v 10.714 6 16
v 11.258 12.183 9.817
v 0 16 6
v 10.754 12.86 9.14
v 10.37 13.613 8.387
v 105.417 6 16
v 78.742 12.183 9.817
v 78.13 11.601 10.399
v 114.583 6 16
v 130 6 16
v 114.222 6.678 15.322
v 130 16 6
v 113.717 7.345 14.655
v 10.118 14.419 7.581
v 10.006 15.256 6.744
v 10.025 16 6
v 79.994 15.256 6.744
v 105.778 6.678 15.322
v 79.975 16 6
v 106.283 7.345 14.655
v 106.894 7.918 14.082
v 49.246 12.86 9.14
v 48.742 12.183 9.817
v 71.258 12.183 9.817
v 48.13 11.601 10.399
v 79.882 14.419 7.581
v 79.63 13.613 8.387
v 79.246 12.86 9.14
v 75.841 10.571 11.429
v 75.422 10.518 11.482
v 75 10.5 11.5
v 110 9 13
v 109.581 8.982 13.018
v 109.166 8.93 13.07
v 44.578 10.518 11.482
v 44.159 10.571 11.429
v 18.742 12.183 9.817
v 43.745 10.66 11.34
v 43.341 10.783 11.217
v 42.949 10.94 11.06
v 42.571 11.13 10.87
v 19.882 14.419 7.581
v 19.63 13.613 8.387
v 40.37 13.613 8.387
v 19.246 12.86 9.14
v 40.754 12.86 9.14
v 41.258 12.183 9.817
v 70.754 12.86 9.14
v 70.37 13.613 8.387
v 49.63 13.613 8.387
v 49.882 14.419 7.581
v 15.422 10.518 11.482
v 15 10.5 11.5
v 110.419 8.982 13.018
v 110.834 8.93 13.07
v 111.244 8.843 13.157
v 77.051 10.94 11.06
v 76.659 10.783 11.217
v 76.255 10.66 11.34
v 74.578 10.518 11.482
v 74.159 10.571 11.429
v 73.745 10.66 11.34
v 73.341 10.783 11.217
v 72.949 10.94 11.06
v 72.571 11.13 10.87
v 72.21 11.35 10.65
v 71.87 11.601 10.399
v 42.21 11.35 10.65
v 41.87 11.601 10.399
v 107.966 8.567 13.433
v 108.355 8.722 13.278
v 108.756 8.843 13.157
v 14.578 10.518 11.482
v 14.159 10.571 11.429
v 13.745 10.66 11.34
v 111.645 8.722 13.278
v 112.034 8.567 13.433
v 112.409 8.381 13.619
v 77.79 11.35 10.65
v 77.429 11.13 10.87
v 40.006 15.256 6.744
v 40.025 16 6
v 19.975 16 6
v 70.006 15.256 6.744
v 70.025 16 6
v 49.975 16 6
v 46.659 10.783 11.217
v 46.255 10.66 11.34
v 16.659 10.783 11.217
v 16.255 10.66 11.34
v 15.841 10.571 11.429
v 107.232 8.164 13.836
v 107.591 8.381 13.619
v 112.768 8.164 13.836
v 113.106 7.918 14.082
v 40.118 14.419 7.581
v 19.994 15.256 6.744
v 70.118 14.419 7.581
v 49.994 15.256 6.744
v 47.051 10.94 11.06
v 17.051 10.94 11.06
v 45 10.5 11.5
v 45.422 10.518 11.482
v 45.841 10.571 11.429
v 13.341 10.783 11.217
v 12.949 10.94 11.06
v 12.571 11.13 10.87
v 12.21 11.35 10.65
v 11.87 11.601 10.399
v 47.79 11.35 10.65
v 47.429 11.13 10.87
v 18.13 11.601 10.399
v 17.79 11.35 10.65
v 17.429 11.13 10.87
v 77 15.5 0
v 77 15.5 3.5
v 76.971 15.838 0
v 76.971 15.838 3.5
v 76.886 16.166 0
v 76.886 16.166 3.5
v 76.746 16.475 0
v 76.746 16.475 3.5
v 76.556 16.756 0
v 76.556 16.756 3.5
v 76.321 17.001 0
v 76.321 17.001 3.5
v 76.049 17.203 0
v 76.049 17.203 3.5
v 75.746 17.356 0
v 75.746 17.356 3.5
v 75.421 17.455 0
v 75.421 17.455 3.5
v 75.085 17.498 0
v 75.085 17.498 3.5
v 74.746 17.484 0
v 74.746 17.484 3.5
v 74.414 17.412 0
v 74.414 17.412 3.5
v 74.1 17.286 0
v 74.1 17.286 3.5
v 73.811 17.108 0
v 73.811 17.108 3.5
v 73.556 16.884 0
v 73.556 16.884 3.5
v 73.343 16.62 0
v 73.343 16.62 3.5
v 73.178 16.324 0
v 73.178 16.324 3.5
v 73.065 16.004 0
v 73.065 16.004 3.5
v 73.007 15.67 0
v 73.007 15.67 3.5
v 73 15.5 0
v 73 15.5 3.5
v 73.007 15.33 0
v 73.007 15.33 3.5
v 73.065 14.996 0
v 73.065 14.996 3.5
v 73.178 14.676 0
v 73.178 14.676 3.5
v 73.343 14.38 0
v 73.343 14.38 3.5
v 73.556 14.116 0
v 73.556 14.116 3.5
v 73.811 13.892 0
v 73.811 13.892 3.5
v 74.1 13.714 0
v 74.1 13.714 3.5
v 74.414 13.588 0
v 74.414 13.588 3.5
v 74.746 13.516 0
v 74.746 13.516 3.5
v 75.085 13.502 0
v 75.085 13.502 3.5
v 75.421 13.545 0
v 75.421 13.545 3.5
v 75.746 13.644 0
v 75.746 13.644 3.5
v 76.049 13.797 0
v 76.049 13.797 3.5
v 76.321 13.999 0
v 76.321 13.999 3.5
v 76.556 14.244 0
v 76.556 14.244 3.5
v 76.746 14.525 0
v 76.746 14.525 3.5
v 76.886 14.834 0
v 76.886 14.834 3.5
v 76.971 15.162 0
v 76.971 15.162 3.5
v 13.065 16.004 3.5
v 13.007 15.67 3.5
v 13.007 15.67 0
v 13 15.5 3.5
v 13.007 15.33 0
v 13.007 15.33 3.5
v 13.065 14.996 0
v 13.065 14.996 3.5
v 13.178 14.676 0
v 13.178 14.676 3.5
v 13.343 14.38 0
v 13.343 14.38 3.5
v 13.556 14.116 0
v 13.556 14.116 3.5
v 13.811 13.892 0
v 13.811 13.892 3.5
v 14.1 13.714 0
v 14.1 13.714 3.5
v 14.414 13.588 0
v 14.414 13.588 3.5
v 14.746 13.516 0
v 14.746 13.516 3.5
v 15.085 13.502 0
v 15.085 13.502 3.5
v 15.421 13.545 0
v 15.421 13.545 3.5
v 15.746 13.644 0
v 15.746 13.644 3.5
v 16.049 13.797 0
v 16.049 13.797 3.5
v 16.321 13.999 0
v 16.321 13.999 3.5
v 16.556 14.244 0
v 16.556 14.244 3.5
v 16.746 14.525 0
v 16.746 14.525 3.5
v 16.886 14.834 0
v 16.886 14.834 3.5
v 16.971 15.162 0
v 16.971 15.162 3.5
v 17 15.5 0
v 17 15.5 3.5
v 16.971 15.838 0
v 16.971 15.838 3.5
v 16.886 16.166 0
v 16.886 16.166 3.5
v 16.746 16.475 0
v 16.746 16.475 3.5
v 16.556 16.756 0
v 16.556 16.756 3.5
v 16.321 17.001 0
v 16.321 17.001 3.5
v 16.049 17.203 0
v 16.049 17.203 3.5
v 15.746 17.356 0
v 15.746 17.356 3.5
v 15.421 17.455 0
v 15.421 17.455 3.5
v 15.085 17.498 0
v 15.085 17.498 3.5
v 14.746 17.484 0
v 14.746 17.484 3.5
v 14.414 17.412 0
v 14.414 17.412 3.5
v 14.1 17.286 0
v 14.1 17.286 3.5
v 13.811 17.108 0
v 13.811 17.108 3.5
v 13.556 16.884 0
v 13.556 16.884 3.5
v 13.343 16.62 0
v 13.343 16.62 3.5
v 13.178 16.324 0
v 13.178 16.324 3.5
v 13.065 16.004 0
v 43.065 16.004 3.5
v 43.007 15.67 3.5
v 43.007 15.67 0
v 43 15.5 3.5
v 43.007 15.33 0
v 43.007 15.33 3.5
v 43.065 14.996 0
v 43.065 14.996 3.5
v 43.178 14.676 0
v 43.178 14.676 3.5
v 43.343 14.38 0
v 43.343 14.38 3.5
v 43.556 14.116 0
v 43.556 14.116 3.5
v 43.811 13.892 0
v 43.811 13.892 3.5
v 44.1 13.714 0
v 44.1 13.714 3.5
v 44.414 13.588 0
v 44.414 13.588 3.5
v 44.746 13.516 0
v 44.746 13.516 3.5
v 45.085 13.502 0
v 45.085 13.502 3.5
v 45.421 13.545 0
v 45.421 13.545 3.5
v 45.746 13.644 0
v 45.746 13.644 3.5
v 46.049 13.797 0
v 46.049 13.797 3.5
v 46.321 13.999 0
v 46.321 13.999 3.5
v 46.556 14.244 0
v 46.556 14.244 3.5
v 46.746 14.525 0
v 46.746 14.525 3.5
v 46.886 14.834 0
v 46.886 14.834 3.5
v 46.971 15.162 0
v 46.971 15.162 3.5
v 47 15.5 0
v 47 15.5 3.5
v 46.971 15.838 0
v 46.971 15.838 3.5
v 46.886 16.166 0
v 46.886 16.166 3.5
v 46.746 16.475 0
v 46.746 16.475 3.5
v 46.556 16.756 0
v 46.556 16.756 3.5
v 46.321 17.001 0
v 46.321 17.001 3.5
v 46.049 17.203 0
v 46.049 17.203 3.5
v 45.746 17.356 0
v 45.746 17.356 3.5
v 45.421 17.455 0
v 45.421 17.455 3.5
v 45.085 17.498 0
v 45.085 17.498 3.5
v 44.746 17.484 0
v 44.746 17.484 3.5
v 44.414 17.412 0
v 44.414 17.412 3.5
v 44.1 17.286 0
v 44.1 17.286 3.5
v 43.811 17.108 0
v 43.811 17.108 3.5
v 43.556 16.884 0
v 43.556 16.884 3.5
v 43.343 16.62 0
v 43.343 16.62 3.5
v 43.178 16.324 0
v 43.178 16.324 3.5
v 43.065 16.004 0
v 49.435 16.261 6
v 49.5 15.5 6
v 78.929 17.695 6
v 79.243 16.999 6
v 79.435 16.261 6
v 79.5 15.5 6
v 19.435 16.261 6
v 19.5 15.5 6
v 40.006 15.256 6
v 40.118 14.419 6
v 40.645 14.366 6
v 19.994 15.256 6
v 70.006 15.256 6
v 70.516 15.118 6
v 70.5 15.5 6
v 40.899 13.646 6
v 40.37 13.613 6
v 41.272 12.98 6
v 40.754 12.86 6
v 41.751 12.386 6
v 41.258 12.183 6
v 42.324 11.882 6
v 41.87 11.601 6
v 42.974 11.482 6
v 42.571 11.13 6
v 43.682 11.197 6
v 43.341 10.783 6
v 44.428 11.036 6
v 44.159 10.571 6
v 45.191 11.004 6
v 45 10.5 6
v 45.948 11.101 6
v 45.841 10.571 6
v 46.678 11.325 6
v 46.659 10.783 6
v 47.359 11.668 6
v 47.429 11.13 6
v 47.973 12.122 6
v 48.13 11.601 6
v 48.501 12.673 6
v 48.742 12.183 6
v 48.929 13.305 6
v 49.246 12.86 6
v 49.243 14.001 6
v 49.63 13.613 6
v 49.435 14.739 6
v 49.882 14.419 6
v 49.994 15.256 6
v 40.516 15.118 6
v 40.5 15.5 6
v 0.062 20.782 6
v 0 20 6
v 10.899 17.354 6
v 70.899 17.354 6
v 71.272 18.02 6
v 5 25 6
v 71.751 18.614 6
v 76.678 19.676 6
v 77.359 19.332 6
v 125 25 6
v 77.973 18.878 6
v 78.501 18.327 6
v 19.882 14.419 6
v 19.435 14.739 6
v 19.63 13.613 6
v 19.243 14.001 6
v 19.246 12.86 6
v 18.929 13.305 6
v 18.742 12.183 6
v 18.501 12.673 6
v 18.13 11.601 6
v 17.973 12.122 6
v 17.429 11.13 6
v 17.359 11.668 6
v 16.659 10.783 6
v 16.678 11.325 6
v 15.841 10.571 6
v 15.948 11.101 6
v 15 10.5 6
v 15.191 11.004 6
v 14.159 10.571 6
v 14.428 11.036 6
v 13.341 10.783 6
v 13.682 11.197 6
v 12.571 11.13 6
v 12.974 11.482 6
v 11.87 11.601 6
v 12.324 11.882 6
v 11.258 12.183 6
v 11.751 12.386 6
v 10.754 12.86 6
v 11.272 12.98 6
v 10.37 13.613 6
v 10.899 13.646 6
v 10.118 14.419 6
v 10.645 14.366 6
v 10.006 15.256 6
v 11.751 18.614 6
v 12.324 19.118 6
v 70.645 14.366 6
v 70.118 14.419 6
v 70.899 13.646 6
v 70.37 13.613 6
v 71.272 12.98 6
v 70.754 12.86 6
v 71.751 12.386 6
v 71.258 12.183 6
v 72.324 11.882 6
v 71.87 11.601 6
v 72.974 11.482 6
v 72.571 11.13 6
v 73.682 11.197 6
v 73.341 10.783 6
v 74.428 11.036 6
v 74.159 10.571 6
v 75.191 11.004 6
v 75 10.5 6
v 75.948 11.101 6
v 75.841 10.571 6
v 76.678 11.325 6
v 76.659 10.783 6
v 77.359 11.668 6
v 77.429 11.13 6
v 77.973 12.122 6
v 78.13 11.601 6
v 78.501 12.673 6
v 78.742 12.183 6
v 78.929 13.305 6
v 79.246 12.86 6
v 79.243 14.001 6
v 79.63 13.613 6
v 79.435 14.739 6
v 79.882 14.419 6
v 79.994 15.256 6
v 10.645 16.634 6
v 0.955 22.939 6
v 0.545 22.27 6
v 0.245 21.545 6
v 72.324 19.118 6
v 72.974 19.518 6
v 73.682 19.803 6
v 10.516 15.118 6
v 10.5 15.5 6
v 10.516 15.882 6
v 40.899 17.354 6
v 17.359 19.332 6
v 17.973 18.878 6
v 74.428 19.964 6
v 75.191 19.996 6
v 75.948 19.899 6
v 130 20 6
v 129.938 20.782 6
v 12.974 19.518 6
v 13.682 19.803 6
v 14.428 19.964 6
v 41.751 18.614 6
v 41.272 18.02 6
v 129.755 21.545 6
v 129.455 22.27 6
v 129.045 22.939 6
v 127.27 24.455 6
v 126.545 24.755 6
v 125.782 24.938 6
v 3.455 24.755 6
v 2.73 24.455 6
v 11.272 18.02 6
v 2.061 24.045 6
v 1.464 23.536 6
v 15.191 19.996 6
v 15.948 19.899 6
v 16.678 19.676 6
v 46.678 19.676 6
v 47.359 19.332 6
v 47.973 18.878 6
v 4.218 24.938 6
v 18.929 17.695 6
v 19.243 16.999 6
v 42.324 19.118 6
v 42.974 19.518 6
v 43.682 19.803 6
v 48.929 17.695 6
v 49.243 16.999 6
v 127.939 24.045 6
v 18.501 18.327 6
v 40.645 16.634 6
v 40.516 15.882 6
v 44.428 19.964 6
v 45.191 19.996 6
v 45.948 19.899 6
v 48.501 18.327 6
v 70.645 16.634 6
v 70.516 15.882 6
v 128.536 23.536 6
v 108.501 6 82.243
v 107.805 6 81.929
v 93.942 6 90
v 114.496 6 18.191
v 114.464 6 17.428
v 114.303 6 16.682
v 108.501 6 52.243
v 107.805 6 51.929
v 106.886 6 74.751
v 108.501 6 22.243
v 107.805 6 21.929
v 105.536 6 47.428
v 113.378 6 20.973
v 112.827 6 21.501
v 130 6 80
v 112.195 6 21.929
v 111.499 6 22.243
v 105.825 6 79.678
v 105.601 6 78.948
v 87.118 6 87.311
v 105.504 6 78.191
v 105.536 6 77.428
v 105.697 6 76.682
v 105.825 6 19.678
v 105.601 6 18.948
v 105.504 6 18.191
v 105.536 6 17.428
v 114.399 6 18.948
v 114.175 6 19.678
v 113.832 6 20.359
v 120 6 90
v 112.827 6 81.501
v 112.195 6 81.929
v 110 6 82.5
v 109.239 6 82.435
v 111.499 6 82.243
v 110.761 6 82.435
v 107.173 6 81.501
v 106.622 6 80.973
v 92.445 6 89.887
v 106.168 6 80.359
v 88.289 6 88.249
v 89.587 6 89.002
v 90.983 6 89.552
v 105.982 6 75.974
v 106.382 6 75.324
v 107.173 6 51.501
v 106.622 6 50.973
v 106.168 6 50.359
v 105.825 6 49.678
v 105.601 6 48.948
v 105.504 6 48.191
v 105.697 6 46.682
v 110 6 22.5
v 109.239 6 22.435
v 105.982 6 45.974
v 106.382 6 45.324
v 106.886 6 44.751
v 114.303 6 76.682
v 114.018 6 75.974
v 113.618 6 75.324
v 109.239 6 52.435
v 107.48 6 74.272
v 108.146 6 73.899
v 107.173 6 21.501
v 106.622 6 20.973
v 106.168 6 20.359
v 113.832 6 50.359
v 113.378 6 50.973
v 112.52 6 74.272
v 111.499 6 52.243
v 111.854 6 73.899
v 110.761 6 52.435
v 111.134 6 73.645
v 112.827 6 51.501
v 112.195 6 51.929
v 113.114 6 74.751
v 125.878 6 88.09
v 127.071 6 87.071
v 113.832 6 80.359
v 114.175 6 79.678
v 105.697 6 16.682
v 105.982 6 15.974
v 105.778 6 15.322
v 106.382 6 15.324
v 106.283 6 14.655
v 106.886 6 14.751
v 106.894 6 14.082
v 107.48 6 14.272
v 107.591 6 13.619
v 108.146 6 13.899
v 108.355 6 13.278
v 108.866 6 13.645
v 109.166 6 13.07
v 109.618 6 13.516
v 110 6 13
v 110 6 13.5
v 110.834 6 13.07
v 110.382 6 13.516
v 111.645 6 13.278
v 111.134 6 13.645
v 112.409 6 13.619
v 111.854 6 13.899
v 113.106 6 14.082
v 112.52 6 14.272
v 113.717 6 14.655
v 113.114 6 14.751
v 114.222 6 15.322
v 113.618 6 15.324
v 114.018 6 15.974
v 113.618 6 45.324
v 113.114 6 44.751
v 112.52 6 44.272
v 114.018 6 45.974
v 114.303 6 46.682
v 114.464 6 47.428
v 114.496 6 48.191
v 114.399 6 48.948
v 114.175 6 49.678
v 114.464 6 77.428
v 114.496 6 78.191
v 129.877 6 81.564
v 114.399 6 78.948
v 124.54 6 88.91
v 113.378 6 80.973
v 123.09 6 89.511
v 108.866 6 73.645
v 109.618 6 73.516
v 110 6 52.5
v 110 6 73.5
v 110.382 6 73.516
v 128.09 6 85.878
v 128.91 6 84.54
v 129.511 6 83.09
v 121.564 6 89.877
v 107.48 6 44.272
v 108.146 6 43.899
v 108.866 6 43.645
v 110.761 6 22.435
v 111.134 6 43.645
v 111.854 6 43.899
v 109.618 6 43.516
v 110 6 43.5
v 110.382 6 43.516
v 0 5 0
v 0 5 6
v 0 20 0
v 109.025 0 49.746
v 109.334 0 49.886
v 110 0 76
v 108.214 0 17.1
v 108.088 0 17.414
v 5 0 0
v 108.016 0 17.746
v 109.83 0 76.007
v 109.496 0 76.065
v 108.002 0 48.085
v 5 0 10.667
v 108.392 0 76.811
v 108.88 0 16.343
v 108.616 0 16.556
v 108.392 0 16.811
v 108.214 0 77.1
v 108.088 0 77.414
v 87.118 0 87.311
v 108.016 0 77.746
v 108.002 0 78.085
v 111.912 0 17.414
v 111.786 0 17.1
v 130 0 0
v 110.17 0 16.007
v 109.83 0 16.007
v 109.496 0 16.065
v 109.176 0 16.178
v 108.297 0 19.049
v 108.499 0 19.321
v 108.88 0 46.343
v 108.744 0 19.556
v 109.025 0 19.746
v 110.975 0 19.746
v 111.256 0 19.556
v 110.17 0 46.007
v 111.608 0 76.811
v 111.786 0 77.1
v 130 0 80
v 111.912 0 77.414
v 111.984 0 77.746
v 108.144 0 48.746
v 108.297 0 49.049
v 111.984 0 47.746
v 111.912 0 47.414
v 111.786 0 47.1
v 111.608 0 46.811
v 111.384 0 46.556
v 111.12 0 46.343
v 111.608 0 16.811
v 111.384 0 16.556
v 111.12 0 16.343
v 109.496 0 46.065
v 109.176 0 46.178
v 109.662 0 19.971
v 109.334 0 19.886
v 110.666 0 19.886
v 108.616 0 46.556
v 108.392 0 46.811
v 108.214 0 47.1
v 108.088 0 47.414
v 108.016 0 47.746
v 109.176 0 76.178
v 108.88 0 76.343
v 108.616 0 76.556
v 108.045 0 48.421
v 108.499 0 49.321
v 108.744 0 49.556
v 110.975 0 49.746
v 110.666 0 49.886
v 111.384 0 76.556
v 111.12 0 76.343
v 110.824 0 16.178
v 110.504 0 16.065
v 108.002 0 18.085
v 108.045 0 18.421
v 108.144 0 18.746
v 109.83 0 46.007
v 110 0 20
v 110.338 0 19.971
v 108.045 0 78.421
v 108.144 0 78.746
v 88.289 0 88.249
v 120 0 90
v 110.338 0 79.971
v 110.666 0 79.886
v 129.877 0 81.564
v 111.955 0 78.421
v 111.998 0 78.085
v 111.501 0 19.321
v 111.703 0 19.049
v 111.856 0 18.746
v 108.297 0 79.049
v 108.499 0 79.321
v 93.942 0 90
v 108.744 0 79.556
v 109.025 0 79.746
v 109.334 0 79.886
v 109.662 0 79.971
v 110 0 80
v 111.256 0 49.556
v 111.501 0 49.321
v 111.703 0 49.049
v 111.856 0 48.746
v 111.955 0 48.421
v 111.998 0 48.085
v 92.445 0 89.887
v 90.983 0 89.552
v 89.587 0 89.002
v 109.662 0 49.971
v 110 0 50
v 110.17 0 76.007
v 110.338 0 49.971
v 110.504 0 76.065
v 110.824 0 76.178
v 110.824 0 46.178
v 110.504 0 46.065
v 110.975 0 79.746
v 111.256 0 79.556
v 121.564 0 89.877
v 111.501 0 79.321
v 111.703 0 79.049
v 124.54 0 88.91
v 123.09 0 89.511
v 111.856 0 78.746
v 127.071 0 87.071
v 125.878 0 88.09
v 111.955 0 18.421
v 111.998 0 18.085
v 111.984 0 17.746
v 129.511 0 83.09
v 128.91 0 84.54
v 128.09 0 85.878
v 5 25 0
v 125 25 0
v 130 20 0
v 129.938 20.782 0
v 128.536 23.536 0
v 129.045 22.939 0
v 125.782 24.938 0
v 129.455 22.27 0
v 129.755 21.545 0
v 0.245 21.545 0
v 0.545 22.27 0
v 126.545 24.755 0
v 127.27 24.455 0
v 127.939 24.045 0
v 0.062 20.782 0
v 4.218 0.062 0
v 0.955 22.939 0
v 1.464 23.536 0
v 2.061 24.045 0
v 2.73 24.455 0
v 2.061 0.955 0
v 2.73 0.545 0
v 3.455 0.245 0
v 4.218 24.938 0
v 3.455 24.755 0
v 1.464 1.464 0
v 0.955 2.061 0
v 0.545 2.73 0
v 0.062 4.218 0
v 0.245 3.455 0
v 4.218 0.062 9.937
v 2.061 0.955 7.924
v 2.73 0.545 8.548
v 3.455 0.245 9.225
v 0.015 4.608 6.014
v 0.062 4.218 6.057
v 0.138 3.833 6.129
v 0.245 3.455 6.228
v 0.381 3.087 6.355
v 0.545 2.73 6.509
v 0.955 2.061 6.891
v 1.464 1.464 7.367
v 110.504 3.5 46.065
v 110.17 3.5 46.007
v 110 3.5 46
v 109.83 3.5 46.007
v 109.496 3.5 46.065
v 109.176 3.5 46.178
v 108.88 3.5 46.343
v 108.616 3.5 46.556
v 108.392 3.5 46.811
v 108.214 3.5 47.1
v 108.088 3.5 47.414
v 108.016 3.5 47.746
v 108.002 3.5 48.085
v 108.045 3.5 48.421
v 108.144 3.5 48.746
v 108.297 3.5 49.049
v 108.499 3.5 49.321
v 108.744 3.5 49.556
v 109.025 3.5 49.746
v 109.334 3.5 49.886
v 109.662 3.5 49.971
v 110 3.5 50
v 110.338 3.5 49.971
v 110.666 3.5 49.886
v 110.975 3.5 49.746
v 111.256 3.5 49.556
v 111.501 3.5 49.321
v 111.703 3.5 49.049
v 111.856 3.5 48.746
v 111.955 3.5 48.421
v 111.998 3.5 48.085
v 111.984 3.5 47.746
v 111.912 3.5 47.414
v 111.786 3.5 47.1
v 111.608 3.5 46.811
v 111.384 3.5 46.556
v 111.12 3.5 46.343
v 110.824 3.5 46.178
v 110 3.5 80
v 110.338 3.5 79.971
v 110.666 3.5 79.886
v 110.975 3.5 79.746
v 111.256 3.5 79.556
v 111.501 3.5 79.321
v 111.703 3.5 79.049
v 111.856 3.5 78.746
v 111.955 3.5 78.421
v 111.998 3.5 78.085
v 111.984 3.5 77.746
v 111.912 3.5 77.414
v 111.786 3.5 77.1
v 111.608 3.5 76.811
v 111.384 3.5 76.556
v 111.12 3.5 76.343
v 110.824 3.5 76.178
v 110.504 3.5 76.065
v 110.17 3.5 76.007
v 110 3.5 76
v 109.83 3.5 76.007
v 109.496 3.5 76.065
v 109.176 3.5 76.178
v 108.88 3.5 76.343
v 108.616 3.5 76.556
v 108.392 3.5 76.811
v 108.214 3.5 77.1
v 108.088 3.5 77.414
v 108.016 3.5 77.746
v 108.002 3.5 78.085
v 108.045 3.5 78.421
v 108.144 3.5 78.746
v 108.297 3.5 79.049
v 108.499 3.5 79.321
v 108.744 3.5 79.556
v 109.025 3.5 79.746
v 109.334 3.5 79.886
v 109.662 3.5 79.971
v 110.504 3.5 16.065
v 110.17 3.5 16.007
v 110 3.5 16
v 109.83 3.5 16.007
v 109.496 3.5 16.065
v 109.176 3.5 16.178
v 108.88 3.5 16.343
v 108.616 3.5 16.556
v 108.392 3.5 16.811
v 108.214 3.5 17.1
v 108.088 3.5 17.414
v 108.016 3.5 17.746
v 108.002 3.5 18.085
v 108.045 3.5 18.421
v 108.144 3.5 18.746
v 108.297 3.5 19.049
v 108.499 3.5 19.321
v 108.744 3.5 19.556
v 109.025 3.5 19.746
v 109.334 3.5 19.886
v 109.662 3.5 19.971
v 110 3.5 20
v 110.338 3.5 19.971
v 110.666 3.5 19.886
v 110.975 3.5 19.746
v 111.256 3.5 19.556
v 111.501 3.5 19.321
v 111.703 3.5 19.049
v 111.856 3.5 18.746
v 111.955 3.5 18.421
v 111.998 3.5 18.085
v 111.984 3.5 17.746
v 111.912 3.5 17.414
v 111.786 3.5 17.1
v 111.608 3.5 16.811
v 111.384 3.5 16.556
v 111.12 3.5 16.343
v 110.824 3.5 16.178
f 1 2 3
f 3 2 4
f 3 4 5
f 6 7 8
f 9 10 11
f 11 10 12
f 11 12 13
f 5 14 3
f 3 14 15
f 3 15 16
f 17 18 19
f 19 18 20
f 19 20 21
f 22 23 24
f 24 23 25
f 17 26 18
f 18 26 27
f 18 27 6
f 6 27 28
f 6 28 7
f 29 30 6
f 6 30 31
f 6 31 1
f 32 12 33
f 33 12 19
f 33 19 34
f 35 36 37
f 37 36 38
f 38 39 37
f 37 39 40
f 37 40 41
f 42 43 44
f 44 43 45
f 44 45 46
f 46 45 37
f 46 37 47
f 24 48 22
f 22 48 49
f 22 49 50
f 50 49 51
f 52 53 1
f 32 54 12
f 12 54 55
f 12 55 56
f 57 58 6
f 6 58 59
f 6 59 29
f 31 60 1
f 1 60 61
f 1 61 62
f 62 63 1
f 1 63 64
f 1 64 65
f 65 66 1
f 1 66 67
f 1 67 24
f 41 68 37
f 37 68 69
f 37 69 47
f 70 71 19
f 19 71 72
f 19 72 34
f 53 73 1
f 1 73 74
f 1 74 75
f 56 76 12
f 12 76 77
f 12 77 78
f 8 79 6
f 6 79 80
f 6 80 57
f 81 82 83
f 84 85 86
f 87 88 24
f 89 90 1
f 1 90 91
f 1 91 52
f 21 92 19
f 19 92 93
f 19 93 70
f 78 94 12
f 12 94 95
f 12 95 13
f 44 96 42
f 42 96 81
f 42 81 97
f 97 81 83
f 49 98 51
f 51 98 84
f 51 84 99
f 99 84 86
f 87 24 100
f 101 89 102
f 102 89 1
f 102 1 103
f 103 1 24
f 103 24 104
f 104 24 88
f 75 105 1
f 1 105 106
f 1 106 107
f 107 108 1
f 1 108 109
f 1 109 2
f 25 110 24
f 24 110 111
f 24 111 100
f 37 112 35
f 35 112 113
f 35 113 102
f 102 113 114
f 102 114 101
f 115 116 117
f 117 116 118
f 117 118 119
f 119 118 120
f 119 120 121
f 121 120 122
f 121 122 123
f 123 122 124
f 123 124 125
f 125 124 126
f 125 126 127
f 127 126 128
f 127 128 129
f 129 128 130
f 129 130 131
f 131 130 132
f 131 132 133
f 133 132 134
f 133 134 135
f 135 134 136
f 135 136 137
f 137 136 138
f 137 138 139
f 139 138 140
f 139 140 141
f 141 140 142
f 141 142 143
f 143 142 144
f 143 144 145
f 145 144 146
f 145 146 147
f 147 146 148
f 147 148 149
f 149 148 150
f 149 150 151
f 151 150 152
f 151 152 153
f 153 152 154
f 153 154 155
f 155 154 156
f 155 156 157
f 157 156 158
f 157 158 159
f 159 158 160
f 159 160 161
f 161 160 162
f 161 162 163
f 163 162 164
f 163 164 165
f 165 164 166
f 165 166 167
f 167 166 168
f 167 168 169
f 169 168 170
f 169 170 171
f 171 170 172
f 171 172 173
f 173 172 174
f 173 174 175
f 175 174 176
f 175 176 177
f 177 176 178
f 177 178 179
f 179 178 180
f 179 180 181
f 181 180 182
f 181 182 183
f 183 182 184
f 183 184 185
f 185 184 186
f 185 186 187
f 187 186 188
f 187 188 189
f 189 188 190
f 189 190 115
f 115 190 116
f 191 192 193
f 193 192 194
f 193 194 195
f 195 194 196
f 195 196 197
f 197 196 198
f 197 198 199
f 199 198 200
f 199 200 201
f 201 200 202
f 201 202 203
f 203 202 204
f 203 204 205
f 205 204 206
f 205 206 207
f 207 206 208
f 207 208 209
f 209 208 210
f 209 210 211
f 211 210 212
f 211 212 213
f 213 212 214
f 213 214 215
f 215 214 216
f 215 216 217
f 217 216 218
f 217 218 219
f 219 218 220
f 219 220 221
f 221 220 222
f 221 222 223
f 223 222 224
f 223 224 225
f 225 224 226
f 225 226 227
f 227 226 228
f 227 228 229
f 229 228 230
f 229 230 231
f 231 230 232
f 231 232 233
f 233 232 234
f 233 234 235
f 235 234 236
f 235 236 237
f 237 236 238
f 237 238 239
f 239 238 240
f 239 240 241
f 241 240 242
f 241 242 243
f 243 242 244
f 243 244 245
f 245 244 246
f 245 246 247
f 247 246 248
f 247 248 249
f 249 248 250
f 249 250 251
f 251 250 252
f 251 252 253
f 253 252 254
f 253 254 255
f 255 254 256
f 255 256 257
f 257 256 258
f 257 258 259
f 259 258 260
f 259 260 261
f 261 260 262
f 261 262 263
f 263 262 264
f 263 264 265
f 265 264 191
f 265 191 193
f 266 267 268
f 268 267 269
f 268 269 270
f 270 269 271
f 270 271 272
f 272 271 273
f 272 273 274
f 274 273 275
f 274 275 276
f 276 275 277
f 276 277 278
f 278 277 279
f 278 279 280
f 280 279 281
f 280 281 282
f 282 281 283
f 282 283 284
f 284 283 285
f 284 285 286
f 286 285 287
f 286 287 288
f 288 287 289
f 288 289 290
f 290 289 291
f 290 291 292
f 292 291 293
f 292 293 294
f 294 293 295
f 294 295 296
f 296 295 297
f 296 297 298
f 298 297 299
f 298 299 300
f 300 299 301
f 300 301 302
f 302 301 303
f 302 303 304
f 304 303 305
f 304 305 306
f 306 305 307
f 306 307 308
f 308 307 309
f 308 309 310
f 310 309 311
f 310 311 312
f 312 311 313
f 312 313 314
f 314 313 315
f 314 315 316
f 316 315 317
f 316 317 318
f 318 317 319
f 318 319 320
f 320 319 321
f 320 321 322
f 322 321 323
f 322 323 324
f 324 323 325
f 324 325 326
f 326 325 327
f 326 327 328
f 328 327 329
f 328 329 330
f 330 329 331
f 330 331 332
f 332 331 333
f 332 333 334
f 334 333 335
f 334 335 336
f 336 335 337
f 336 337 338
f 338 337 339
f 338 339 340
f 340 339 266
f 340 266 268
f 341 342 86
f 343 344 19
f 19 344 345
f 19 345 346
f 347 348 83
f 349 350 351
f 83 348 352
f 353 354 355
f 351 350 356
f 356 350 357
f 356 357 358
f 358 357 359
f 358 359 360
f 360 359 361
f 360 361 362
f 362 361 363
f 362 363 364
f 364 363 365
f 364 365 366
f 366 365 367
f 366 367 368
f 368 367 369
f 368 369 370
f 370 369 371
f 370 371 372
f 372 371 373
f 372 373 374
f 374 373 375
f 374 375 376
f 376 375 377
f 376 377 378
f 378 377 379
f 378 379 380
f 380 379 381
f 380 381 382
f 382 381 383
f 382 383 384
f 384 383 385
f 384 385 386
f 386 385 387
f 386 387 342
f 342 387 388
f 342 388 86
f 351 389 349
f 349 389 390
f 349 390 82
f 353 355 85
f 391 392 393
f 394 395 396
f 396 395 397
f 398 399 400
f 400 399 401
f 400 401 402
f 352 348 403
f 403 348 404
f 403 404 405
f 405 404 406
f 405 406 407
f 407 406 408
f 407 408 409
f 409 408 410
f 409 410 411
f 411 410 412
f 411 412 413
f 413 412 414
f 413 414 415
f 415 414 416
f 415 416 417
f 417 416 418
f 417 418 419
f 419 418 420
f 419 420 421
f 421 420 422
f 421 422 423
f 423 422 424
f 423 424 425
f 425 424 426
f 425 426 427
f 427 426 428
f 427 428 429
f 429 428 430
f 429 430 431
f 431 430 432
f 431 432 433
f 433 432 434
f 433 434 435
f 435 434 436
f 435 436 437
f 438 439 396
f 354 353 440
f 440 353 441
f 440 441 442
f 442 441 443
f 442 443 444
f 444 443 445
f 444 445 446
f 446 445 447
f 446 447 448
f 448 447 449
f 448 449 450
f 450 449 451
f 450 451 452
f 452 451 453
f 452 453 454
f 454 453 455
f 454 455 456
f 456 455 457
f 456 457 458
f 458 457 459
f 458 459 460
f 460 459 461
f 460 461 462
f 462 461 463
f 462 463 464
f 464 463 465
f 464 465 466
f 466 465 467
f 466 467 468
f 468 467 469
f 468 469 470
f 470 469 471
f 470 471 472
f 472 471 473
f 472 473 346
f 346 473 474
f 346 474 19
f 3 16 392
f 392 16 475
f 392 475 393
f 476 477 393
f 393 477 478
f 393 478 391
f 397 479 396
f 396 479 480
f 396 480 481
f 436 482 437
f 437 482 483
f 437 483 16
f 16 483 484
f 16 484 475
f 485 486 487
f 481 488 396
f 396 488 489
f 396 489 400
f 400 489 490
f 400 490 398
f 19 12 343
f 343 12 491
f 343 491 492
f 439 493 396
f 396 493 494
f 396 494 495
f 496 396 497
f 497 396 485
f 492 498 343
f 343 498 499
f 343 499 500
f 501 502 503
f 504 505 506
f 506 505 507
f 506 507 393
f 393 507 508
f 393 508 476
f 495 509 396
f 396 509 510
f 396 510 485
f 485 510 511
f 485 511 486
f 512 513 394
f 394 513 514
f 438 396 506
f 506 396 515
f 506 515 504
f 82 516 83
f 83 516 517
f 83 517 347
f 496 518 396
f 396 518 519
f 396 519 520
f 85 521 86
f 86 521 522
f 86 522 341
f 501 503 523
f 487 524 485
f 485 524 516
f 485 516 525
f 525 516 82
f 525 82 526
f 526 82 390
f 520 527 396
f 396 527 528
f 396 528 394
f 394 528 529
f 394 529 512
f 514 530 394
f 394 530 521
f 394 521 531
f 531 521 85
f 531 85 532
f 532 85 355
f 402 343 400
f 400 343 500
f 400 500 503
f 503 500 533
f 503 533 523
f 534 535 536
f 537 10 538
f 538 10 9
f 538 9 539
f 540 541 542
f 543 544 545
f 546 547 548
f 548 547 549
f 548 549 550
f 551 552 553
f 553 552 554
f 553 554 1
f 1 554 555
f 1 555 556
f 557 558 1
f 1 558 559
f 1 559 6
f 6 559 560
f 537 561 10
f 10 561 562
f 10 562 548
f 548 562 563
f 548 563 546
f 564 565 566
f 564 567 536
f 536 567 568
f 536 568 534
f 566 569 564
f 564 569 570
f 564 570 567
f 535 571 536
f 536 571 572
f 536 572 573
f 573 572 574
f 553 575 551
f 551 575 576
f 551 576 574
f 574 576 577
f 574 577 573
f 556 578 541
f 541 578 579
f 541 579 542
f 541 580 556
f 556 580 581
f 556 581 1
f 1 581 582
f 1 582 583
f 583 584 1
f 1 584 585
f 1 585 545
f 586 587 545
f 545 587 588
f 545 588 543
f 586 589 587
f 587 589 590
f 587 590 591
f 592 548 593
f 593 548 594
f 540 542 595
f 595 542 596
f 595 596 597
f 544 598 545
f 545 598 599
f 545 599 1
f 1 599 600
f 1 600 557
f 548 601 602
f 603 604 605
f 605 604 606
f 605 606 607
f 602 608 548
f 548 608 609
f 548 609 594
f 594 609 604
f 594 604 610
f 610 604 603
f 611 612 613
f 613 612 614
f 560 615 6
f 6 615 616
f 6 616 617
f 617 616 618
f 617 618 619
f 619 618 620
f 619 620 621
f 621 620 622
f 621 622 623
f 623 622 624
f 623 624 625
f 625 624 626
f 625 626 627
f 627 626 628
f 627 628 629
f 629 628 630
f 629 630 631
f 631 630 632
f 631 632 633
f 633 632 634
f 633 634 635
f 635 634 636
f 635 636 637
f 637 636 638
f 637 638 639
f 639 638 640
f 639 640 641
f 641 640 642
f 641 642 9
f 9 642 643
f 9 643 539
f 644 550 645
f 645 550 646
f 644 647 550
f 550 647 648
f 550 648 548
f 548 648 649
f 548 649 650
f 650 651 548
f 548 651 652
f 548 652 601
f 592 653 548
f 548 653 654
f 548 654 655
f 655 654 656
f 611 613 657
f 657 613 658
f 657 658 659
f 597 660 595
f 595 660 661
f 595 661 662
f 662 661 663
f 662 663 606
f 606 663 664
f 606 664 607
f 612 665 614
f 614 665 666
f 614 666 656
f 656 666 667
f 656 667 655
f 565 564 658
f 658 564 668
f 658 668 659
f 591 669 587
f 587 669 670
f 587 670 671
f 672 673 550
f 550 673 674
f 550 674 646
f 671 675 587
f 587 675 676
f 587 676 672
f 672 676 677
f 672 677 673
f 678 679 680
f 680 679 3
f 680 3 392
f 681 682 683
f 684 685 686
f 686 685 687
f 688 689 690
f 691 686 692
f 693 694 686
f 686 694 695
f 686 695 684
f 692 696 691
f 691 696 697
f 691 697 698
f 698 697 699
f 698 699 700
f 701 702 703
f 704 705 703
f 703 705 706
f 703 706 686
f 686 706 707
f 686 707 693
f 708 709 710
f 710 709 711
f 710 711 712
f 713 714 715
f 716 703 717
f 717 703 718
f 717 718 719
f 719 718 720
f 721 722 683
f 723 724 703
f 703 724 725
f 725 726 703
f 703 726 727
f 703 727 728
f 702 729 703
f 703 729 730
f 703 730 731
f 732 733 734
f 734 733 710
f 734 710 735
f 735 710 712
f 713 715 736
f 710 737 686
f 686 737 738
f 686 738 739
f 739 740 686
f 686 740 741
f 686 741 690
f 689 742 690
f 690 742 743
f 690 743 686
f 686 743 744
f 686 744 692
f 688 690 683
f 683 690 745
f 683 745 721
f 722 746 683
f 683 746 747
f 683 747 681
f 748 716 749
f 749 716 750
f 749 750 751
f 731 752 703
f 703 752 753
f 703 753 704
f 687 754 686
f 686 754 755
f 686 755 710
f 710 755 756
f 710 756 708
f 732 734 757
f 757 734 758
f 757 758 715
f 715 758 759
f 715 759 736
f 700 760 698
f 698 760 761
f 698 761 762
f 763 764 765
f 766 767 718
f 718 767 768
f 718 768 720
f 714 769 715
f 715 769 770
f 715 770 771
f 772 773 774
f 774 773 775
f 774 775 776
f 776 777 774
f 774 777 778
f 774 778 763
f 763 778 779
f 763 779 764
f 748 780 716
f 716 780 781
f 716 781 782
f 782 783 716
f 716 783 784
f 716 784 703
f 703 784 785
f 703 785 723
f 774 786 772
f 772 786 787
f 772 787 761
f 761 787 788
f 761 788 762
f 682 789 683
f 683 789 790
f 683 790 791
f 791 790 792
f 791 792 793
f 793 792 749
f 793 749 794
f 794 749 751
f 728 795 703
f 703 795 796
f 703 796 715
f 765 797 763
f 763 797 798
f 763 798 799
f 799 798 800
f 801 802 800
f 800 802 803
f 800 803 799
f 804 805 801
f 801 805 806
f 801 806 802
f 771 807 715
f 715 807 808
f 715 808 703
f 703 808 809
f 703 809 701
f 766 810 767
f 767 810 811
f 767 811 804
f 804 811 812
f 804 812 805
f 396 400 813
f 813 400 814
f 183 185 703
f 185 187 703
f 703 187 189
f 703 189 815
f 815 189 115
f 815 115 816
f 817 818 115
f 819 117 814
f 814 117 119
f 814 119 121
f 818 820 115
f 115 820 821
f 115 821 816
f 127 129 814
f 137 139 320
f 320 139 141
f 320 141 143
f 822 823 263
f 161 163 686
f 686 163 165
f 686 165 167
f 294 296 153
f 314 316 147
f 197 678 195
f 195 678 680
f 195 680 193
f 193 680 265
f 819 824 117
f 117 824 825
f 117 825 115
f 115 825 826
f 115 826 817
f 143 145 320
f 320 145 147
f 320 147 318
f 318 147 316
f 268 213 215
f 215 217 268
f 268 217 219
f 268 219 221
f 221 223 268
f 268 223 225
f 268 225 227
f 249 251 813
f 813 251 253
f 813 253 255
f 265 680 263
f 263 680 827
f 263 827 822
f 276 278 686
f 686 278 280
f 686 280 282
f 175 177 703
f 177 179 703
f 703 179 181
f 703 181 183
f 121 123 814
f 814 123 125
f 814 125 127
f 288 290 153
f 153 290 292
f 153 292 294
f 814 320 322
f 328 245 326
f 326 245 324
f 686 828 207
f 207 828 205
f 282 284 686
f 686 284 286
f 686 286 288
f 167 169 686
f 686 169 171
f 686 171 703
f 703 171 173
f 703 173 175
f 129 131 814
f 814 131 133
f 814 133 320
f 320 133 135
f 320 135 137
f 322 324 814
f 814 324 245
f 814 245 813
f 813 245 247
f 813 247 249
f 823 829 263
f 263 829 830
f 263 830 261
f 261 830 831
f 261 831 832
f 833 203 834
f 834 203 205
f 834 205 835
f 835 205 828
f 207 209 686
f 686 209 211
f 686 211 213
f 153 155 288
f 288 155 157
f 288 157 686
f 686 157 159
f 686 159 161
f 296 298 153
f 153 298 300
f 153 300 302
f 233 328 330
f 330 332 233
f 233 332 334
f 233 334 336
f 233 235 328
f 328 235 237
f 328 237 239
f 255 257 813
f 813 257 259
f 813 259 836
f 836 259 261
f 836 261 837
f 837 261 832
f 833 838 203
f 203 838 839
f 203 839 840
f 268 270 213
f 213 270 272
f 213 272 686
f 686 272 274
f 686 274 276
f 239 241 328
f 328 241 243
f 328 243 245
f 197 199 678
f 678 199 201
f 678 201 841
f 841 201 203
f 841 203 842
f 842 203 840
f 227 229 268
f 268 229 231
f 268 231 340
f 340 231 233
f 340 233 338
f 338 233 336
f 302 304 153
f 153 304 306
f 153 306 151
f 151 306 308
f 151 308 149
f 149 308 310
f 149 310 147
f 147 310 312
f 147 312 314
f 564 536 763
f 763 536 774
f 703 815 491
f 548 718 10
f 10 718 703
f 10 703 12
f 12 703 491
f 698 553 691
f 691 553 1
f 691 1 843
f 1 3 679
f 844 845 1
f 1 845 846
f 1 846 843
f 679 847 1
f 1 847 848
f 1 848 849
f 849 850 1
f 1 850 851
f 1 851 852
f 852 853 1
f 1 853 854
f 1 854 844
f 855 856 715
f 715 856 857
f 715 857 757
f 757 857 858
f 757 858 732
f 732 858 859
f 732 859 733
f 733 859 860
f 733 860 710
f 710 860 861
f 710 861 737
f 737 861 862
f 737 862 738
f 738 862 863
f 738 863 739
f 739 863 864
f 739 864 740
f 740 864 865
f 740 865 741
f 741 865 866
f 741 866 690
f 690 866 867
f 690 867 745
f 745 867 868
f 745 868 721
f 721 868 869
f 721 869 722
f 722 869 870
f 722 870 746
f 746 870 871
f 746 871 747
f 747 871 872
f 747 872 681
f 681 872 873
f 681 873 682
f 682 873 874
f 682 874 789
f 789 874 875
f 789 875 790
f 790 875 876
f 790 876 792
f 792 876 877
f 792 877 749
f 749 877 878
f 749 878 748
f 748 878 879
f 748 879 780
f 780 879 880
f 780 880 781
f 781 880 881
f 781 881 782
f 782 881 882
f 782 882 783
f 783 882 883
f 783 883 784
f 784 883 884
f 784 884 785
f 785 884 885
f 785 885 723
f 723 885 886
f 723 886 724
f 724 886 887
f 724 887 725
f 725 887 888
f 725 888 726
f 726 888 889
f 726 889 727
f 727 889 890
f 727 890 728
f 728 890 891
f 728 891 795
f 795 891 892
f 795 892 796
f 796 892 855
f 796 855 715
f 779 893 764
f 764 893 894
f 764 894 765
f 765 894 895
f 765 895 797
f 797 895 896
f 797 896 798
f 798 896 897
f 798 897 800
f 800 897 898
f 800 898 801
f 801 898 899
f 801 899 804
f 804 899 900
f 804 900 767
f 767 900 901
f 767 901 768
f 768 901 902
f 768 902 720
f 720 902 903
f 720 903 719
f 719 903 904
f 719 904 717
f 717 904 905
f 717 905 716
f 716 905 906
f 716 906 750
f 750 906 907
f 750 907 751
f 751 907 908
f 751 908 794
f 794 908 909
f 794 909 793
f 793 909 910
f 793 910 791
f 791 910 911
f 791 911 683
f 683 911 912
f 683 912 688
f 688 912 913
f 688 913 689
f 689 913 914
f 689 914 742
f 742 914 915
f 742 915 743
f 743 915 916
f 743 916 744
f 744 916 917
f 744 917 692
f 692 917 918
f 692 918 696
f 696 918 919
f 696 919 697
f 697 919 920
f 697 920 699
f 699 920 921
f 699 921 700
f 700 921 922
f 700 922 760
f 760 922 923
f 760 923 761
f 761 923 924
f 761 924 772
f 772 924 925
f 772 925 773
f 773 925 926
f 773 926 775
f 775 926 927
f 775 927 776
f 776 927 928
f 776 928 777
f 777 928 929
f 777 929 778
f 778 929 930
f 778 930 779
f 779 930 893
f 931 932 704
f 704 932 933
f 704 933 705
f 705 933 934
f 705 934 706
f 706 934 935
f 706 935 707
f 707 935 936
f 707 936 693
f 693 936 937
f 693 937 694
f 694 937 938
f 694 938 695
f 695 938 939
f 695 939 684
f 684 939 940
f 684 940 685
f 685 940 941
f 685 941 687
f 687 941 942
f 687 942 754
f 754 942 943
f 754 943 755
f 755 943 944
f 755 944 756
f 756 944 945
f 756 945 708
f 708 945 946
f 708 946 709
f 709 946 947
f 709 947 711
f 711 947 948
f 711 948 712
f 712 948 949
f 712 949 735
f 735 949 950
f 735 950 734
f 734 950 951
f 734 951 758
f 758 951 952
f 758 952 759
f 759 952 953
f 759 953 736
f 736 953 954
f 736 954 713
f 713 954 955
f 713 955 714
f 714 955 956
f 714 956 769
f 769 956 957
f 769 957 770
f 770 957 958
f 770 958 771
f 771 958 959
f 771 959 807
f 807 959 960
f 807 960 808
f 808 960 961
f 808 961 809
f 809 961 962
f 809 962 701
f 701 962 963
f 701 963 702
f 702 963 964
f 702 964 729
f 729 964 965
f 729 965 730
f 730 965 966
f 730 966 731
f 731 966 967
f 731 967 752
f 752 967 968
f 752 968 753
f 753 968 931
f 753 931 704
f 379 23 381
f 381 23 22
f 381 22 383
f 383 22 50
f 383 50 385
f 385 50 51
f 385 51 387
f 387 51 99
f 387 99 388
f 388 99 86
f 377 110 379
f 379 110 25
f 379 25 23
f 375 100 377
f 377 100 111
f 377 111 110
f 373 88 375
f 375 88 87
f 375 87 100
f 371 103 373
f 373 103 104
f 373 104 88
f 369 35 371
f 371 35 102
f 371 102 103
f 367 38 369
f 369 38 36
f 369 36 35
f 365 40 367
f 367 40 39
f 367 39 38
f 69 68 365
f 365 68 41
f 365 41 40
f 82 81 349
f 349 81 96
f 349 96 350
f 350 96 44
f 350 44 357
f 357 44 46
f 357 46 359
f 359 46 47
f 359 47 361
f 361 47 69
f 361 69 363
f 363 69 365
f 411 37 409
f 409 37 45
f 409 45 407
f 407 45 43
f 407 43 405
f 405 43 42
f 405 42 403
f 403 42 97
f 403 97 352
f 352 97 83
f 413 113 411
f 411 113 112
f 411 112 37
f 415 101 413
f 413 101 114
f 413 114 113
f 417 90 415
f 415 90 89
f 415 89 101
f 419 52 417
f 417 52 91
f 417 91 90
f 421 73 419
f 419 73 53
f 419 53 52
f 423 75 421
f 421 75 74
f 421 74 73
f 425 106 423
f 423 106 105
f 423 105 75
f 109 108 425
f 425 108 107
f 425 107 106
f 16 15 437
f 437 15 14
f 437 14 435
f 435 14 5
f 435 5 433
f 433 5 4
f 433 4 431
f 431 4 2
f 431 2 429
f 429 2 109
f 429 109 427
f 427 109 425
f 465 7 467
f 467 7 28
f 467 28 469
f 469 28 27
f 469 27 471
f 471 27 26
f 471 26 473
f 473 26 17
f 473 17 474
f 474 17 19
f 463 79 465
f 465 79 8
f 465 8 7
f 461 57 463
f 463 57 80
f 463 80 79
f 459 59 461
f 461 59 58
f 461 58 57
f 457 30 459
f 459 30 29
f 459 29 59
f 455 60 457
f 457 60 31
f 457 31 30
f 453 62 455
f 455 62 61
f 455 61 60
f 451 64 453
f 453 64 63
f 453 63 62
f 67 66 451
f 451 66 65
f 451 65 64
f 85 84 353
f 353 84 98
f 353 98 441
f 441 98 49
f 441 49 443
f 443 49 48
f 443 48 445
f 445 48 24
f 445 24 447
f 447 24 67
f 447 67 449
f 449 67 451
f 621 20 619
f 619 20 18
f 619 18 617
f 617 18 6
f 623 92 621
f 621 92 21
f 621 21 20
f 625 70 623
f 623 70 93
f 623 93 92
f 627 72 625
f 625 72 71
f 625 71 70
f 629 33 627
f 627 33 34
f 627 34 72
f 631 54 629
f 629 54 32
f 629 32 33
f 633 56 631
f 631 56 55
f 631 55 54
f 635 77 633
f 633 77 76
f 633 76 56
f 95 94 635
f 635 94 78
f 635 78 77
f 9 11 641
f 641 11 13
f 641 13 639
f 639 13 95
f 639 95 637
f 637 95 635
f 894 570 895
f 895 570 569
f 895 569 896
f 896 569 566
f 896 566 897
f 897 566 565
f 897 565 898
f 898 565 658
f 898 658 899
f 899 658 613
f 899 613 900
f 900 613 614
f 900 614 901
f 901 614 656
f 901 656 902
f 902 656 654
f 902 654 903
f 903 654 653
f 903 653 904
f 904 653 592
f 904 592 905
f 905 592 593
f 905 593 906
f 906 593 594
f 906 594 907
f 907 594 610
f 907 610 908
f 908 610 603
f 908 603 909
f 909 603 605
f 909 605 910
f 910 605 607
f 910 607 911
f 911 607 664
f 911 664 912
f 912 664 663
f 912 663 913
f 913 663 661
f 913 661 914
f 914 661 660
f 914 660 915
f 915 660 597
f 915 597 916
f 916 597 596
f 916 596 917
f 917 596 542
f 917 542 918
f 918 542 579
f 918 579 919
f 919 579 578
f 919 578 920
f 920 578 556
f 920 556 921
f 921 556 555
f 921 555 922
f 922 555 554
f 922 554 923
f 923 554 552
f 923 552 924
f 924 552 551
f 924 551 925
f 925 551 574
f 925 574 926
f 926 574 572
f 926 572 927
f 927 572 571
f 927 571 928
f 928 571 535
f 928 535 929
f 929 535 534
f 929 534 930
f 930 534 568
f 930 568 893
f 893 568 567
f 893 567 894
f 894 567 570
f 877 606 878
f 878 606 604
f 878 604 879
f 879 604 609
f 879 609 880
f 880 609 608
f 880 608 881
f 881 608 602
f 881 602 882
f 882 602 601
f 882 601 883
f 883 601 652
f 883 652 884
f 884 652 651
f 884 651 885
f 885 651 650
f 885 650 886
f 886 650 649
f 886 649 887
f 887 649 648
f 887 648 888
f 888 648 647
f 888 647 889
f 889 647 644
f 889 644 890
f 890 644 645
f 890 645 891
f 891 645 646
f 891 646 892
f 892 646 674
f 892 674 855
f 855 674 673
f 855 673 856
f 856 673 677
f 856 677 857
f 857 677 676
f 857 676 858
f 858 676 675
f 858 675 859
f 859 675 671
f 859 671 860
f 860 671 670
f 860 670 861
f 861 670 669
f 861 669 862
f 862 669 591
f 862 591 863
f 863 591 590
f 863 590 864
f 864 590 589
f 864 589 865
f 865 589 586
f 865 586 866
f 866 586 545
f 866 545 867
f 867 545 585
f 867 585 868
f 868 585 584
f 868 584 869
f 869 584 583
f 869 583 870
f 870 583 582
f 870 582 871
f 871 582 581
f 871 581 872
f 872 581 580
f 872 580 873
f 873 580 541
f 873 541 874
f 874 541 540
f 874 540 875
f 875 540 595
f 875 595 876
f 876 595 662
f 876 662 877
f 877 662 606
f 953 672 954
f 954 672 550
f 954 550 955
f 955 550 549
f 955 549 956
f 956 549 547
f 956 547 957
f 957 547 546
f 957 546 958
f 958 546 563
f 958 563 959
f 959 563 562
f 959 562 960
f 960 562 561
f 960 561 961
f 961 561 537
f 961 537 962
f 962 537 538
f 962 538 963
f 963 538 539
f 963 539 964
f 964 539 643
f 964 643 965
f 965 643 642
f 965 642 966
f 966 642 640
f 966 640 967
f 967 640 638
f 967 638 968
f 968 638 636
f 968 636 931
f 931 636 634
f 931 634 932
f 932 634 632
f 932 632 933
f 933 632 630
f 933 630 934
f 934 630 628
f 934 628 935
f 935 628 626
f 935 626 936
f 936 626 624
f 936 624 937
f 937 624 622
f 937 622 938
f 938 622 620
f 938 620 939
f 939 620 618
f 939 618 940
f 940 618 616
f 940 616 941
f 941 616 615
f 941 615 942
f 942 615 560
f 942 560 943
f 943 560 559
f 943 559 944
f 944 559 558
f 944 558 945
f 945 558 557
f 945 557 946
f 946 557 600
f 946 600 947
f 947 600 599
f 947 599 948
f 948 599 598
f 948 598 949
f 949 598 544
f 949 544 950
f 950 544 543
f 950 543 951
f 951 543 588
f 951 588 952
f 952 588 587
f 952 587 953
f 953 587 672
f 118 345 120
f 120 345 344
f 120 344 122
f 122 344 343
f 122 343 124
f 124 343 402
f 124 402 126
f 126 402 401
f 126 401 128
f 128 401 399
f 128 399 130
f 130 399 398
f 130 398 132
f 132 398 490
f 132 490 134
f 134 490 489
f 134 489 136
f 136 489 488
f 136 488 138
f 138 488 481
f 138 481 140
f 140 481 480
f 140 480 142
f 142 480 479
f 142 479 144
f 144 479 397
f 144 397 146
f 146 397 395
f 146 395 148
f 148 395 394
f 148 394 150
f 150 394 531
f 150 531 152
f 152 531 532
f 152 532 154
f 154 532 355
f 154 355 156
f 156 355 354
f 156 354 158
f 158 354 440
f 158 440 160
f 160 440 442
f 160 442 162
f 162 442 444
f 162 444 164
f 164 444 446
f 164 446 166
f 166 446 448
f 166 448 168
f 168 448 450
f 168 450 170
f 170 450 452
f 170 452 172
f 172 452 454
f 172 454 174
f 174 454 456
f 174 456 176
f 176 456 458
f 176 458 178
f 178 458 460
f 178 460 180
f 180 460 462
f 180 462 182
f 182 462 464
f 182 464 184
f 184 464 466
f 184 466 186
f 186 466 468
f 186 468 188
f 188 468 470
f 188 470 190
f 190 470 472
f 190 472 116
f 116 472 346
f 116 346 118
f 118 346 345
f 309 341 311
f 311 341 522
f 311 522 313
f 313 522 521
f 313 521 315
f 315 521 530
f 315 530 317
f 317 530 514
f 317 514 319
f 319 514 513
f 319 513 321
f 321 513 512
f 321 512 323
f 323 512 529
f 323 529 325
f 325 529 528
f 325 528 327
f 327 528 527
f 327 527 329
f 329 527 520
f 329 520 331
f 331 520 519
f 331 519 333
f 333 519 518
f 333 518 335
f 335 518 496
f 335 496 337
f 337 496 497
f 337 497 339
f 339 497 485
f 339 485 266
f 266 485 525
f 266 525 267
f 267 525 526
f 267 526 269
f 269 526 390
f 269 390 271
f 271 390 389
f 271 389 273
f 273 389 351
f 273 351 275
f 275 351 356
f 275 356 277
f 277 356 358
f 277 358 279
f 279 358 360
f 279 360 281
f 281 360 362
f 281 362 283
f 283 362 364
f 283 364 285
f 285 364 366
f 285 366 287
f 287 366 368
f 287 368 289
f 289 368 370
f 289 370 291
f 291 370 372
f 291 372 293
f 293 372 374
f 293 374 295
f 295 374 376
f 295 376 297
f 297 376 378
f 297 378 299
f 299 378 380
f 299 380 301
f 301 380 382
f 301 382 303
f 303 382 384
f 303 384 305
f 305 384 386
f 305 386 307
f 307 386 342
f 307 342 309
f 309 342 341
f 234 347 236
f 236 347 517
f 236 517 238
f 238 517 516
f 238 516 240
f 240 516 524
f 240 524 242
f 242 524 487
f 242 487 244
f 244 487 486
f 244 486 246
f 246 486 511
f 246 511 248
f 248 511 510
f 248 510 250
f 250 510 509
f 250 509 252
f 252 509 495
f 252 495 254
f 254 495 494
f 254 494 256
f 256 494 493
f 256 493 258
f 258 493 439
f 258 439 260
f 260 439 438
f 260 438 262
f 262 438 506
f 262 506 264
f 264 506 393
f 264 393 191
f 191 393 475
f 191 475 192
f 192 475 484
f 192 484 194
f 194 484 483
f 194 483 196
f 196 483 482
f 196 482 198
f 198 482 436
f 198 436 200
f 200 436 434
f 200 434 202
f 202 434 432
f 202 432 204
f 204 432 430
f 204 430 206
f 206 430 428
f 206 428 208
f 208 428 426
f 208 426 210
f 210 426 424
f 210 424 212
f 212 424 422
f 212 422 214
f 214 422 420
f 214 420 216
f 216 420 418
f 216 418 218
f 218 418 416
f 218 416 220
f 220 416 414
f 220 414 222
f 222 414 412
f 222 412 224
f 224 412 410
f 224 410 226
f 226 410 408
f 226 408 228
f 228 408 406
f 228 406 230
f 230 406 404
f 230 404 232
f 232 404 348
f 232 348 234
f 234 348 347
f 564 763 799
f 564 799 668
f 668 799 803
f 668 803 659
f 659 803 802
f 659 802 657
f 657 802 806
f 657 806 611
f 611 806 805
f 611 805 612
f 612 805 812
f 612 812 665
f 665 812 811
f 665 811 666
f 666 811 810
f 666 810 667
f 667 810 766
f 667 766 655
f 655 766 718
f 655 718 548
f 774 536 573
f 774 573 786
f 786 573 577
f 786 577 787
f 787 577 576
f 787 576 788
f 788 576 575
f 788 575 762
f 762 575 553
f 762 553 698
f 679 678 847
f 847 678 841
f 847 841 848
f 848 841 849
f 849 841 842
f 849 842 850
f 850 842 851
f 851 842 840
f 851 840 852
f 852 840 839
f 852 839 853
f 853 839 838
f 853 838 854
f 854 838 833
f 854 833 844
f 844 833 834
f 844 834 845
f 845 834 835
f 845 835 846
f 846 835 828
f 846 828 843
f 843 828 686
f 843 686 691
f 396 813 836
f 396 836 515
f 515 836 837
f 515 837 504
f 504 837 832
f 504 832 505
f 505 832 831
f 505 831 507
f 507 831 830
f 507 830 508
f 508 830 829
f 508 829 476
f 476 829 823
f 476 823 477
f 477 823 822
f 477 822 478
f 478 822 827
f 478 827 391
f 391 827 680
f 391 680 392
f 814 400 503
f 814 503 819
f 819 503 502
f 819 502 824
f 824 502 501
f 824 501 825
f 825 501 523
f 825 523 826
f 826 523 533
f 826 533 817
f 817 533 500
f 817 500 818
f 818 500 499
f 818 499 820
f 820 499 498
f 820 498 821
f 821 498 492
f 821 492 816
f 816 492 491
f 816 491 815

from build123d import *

# Parameters (mm, degrees)
ESQUISSE1_W                  = 90
ESQUISSE1_H                  = 25
BOSS_EXTRU_1_DEPTH           = 6
ESQUISSE2_W                  = 90
ESQUISSE2_H                  = 6
BOSS_EXTRU_2_DEPTH           = 40
ESQUISSE3_W                  = 40
ESQUISSE3_H                  = 6
BOSS_EXTRU_3_DEPTH           = 19
BOSS_EXTRU_4_DEPTH           = 6
ESQUISSE5_R                  = 2
ENL_V_MAT_EXTRU_1_DEPTH      = 157.783289926
ENL_V_MAT_EXTRU_2_DEPTH      = 160.25137362
ENL_V_MAT_EXTRU_2_DEPTH_BACK = 160.25137362
ESQUISSE6_R                  = 2
CHANFREIN1_SIZE              = 10
ESQUISSE7_R                  = 5
ENL_V_MAT_EXTRU_3_DEPTH      = 157.783289926
ESQUISSE8_R                  = 5
ENL_V_MAT_EXTRU_4_DEPTH      = 160.25137362
CHANFREIN3_SIZE              = 2.5
CONG_1_R                     = 10
CONG_2_R                     = 5


with BuildPart() as part:
    # Esquisse1 → Boss.-Extru.1 (new body)
    with BuildSketch(Plane.XY):
        with Locations((45, 12.5)):
            Rectangle(ESQUISSE1_W, ESQUISSE1_H)
    extrude(amount=BOSS_EXTRU_1_DEPTH)

    # Esquisse2 → Boss.-Extru.2 (add)
    with BuildSketch(Plane(origin=(90, 0, 0), x_dir=(0, 0, -1), z_dir=(1, 0, 0))):
        with Locations((-45, 3)):
            Rectangle(ESQUISSE2_W, ESQUISSE2_H)
    extrude(amount=BOSS_EXTRU_2_DEPTH)

    # Esquisse3 → Boss.-Extru.3 (add)
    with BuildSketch(Plane(origin=(0, 6, 0), x_dir=(1, 0, 0), z_dir=(0, 1, 0))):
        with Locations((110, -3)):
            Rectangle(ESQUISSE3_W, ESQUISSE3_H)
    extrude(amount=BOSS_EXTRU_3_DEPTH)

    # Esquisse4 → Boss.-Extru.4 (add)
    with BuildSketch(Plane.XZ):
        Polygon((0, 6), (90, 90), (90, 6), align=None)
    extrude(amount=-BOSS_EXTRU_4_DEPTH)

    # Esquisse5 → Enlèv. mat.-Extru.1 (cut, through all)
    with BuildSketch(Plane.XY.offset(6)):
        with Locations((45, 15.5)):
            Circle(ESQUISSE5_R)
        with Locations((15, 15.5)):
            Circle(ESQUISSE5_R)
        with Locations(Location((75, 15.5, 0), (0, 0, 180))):
            Circle(ESQUISSE5_R)
    extrude(amount=-ENL_V_MAT_EXTRU_1_DEPTH, mode=Mode.SUBTRACT)

    # Esquisse6 → Enlèv. mat.-Extru.2 (cut, two sides: drawn at the far end of the back side and taken through both)
    with BuildSketch(Plane(origin=(0, 6, 0), x_dir=(1, 0, 0), z_dir=(0, 1, 0)).offset(-ENL_V_MAT_EXTRU_2_DEPTH_BACK)):
        with Locations(Location((110, -48, 0), (0, 0, 270))):
            Circle(ESQUISSE6_R)
        with Locations(Location((110, -18, 0), (0, 0, 270))):
            Circle(ESQUISSE6_R)
        with Locations(Location((110, -78, 0), (0, 0, 90))):
            Circle(ESQUISSE6_R)
    extrude(amount=ENL_V_MAT_EXTRU_2_DEPTH + ENL_V_MAT_EXTRU_2_DEPTH_BACK, mode=Mode.SUBTRACT)

    # Chanfrein1
    # the kernel refuses this chamfer: 10 mm, written as the material it adds along each edge
    with BuildSketch(Plane(origin=(0, 6, 6), x_dir=(0, 0.9996219169112968, -0.027495876610586403), z_dir=(1, 0, 0))) as chanfrein1_piece_1_section:
        Polygon((CHANFREIN1_SIZE * 0.999621916911, CHANFREIN1_SIZE * 0.0274958766106), (-CHANFREIN1_SIZE * 0.0274958766106, CHANFREIN1_SIZE * 0.999621916911), (0, 0), align=None)
    chanfrein1_piece_1 = extrude(amount=130, mode=Mode.PRIVATE)
    chanfrein1_piece_1 = split(chanfrein1_piece_1, bisect_by=Plane(origin=(37.357692618, 9.297592043, 40.867179777), z_dir=(0.6823182503600111, 0, -0.7310552682428691)), keep=Keep.TOP, mode=Mode.PRIVATE)
    chanfrein1_piece_1 = chanfrein1_piece_1 - Plane(origin=(110, 9.297592043, 18), x_dir=(0, 0, 1), z_dir=(0, 1, 0)) * Cylinder(2, 300, mode=Mode.PRIVATE)
    chanfrein1_piece_1 = chanfrein1_piece_1 - Plane(origin=(15, 15.5, 9.259179561), x_dir=(1, 0, 0), z_dir=(0, 0, 1)) * Cylinder(2, 300, mode=Mode.PRIVATE)
    chanfrein1_piece_1 = chanfrein1_piece_1 - Plane(origin=(45, 15.5, 9.259179561), x_dir=(1, 0, 0), z_dir=(0, 0, 1)) * Cylinder(2, 300, mode=Mode.PRIVATE)
    chanfrein1_piece_1 = chanfrein1_piece_1 - Plane(origin=(75, 15.5, 9.259179561), x_dir=(-1, 0, 0), z_dir=(0, 0, 1)) * Cylinder(2, 300, mode=Mode.PRIVATE)
    add(chanfrein1_piece_1)

    # Esquisse7 → Enlèv. mat.-Extru.3 (cut, through all)
    with BuildSketch(Plane.XY.offset(6)):
        with Locations((45, 15.5)):
            Circle(ESQUISSE7_R)
        with Locations((15, 15.5)):
            Circle(ESQUISSE7_R)
        with Locations((75, 15.5)):
            Circle(ESQUISSE7_R)
    extrude(amount=ENL_V_MAT_EXTRU_3_DEPTH, mode=Mode.SUBTRACT)

    # Esquisse8 → Enlèv. mat.-Extru.4 (cut, through all)
    with BuildSketch(Plane(origin=(0, 6, 0), x_dir=(1, 0, 0), z_dir=(0, 1, 0))):
        with Locations((110, -18)):
            Circle(ESQUISSE8_R)
    extrude(amount=ENL_V_MAT_EXTRU_4_DEPTH, mode=Mode.SUBTRACT)

    # Chanfrein3
    chanfrein3_edges = [part.edges().sort_by_distance(p)[0] for p in [
        (43, 15.5, 6),
        (13, 15.5, 6),
        (77, 15.5, 6),
        (110, 6, 46),
        (110, 6, 16),
        (110, 6, 80),
    ]]
    chamfer(chanfrein3_edges, length=CHANFREIN3_SIZE)

    # Congé1
    cong_1_edges = [part.edges().sort_by_distance(p)[0] for p in [
        (90, 3, 90),
        (130, 3, 90),
    ]]
    fillet(cong_1_edges, radius=CONG_1_R)

    # Congé2
    cong_2_edges = [part.edges().sort_by_distance(p)[0] for p in [
        (130, 25, 3),
        (0, 25, 3),
        (0, 0, 3),
    ]]
    fillet(cong_2_edges, radius=CONG_2_R)


solid = part.part
